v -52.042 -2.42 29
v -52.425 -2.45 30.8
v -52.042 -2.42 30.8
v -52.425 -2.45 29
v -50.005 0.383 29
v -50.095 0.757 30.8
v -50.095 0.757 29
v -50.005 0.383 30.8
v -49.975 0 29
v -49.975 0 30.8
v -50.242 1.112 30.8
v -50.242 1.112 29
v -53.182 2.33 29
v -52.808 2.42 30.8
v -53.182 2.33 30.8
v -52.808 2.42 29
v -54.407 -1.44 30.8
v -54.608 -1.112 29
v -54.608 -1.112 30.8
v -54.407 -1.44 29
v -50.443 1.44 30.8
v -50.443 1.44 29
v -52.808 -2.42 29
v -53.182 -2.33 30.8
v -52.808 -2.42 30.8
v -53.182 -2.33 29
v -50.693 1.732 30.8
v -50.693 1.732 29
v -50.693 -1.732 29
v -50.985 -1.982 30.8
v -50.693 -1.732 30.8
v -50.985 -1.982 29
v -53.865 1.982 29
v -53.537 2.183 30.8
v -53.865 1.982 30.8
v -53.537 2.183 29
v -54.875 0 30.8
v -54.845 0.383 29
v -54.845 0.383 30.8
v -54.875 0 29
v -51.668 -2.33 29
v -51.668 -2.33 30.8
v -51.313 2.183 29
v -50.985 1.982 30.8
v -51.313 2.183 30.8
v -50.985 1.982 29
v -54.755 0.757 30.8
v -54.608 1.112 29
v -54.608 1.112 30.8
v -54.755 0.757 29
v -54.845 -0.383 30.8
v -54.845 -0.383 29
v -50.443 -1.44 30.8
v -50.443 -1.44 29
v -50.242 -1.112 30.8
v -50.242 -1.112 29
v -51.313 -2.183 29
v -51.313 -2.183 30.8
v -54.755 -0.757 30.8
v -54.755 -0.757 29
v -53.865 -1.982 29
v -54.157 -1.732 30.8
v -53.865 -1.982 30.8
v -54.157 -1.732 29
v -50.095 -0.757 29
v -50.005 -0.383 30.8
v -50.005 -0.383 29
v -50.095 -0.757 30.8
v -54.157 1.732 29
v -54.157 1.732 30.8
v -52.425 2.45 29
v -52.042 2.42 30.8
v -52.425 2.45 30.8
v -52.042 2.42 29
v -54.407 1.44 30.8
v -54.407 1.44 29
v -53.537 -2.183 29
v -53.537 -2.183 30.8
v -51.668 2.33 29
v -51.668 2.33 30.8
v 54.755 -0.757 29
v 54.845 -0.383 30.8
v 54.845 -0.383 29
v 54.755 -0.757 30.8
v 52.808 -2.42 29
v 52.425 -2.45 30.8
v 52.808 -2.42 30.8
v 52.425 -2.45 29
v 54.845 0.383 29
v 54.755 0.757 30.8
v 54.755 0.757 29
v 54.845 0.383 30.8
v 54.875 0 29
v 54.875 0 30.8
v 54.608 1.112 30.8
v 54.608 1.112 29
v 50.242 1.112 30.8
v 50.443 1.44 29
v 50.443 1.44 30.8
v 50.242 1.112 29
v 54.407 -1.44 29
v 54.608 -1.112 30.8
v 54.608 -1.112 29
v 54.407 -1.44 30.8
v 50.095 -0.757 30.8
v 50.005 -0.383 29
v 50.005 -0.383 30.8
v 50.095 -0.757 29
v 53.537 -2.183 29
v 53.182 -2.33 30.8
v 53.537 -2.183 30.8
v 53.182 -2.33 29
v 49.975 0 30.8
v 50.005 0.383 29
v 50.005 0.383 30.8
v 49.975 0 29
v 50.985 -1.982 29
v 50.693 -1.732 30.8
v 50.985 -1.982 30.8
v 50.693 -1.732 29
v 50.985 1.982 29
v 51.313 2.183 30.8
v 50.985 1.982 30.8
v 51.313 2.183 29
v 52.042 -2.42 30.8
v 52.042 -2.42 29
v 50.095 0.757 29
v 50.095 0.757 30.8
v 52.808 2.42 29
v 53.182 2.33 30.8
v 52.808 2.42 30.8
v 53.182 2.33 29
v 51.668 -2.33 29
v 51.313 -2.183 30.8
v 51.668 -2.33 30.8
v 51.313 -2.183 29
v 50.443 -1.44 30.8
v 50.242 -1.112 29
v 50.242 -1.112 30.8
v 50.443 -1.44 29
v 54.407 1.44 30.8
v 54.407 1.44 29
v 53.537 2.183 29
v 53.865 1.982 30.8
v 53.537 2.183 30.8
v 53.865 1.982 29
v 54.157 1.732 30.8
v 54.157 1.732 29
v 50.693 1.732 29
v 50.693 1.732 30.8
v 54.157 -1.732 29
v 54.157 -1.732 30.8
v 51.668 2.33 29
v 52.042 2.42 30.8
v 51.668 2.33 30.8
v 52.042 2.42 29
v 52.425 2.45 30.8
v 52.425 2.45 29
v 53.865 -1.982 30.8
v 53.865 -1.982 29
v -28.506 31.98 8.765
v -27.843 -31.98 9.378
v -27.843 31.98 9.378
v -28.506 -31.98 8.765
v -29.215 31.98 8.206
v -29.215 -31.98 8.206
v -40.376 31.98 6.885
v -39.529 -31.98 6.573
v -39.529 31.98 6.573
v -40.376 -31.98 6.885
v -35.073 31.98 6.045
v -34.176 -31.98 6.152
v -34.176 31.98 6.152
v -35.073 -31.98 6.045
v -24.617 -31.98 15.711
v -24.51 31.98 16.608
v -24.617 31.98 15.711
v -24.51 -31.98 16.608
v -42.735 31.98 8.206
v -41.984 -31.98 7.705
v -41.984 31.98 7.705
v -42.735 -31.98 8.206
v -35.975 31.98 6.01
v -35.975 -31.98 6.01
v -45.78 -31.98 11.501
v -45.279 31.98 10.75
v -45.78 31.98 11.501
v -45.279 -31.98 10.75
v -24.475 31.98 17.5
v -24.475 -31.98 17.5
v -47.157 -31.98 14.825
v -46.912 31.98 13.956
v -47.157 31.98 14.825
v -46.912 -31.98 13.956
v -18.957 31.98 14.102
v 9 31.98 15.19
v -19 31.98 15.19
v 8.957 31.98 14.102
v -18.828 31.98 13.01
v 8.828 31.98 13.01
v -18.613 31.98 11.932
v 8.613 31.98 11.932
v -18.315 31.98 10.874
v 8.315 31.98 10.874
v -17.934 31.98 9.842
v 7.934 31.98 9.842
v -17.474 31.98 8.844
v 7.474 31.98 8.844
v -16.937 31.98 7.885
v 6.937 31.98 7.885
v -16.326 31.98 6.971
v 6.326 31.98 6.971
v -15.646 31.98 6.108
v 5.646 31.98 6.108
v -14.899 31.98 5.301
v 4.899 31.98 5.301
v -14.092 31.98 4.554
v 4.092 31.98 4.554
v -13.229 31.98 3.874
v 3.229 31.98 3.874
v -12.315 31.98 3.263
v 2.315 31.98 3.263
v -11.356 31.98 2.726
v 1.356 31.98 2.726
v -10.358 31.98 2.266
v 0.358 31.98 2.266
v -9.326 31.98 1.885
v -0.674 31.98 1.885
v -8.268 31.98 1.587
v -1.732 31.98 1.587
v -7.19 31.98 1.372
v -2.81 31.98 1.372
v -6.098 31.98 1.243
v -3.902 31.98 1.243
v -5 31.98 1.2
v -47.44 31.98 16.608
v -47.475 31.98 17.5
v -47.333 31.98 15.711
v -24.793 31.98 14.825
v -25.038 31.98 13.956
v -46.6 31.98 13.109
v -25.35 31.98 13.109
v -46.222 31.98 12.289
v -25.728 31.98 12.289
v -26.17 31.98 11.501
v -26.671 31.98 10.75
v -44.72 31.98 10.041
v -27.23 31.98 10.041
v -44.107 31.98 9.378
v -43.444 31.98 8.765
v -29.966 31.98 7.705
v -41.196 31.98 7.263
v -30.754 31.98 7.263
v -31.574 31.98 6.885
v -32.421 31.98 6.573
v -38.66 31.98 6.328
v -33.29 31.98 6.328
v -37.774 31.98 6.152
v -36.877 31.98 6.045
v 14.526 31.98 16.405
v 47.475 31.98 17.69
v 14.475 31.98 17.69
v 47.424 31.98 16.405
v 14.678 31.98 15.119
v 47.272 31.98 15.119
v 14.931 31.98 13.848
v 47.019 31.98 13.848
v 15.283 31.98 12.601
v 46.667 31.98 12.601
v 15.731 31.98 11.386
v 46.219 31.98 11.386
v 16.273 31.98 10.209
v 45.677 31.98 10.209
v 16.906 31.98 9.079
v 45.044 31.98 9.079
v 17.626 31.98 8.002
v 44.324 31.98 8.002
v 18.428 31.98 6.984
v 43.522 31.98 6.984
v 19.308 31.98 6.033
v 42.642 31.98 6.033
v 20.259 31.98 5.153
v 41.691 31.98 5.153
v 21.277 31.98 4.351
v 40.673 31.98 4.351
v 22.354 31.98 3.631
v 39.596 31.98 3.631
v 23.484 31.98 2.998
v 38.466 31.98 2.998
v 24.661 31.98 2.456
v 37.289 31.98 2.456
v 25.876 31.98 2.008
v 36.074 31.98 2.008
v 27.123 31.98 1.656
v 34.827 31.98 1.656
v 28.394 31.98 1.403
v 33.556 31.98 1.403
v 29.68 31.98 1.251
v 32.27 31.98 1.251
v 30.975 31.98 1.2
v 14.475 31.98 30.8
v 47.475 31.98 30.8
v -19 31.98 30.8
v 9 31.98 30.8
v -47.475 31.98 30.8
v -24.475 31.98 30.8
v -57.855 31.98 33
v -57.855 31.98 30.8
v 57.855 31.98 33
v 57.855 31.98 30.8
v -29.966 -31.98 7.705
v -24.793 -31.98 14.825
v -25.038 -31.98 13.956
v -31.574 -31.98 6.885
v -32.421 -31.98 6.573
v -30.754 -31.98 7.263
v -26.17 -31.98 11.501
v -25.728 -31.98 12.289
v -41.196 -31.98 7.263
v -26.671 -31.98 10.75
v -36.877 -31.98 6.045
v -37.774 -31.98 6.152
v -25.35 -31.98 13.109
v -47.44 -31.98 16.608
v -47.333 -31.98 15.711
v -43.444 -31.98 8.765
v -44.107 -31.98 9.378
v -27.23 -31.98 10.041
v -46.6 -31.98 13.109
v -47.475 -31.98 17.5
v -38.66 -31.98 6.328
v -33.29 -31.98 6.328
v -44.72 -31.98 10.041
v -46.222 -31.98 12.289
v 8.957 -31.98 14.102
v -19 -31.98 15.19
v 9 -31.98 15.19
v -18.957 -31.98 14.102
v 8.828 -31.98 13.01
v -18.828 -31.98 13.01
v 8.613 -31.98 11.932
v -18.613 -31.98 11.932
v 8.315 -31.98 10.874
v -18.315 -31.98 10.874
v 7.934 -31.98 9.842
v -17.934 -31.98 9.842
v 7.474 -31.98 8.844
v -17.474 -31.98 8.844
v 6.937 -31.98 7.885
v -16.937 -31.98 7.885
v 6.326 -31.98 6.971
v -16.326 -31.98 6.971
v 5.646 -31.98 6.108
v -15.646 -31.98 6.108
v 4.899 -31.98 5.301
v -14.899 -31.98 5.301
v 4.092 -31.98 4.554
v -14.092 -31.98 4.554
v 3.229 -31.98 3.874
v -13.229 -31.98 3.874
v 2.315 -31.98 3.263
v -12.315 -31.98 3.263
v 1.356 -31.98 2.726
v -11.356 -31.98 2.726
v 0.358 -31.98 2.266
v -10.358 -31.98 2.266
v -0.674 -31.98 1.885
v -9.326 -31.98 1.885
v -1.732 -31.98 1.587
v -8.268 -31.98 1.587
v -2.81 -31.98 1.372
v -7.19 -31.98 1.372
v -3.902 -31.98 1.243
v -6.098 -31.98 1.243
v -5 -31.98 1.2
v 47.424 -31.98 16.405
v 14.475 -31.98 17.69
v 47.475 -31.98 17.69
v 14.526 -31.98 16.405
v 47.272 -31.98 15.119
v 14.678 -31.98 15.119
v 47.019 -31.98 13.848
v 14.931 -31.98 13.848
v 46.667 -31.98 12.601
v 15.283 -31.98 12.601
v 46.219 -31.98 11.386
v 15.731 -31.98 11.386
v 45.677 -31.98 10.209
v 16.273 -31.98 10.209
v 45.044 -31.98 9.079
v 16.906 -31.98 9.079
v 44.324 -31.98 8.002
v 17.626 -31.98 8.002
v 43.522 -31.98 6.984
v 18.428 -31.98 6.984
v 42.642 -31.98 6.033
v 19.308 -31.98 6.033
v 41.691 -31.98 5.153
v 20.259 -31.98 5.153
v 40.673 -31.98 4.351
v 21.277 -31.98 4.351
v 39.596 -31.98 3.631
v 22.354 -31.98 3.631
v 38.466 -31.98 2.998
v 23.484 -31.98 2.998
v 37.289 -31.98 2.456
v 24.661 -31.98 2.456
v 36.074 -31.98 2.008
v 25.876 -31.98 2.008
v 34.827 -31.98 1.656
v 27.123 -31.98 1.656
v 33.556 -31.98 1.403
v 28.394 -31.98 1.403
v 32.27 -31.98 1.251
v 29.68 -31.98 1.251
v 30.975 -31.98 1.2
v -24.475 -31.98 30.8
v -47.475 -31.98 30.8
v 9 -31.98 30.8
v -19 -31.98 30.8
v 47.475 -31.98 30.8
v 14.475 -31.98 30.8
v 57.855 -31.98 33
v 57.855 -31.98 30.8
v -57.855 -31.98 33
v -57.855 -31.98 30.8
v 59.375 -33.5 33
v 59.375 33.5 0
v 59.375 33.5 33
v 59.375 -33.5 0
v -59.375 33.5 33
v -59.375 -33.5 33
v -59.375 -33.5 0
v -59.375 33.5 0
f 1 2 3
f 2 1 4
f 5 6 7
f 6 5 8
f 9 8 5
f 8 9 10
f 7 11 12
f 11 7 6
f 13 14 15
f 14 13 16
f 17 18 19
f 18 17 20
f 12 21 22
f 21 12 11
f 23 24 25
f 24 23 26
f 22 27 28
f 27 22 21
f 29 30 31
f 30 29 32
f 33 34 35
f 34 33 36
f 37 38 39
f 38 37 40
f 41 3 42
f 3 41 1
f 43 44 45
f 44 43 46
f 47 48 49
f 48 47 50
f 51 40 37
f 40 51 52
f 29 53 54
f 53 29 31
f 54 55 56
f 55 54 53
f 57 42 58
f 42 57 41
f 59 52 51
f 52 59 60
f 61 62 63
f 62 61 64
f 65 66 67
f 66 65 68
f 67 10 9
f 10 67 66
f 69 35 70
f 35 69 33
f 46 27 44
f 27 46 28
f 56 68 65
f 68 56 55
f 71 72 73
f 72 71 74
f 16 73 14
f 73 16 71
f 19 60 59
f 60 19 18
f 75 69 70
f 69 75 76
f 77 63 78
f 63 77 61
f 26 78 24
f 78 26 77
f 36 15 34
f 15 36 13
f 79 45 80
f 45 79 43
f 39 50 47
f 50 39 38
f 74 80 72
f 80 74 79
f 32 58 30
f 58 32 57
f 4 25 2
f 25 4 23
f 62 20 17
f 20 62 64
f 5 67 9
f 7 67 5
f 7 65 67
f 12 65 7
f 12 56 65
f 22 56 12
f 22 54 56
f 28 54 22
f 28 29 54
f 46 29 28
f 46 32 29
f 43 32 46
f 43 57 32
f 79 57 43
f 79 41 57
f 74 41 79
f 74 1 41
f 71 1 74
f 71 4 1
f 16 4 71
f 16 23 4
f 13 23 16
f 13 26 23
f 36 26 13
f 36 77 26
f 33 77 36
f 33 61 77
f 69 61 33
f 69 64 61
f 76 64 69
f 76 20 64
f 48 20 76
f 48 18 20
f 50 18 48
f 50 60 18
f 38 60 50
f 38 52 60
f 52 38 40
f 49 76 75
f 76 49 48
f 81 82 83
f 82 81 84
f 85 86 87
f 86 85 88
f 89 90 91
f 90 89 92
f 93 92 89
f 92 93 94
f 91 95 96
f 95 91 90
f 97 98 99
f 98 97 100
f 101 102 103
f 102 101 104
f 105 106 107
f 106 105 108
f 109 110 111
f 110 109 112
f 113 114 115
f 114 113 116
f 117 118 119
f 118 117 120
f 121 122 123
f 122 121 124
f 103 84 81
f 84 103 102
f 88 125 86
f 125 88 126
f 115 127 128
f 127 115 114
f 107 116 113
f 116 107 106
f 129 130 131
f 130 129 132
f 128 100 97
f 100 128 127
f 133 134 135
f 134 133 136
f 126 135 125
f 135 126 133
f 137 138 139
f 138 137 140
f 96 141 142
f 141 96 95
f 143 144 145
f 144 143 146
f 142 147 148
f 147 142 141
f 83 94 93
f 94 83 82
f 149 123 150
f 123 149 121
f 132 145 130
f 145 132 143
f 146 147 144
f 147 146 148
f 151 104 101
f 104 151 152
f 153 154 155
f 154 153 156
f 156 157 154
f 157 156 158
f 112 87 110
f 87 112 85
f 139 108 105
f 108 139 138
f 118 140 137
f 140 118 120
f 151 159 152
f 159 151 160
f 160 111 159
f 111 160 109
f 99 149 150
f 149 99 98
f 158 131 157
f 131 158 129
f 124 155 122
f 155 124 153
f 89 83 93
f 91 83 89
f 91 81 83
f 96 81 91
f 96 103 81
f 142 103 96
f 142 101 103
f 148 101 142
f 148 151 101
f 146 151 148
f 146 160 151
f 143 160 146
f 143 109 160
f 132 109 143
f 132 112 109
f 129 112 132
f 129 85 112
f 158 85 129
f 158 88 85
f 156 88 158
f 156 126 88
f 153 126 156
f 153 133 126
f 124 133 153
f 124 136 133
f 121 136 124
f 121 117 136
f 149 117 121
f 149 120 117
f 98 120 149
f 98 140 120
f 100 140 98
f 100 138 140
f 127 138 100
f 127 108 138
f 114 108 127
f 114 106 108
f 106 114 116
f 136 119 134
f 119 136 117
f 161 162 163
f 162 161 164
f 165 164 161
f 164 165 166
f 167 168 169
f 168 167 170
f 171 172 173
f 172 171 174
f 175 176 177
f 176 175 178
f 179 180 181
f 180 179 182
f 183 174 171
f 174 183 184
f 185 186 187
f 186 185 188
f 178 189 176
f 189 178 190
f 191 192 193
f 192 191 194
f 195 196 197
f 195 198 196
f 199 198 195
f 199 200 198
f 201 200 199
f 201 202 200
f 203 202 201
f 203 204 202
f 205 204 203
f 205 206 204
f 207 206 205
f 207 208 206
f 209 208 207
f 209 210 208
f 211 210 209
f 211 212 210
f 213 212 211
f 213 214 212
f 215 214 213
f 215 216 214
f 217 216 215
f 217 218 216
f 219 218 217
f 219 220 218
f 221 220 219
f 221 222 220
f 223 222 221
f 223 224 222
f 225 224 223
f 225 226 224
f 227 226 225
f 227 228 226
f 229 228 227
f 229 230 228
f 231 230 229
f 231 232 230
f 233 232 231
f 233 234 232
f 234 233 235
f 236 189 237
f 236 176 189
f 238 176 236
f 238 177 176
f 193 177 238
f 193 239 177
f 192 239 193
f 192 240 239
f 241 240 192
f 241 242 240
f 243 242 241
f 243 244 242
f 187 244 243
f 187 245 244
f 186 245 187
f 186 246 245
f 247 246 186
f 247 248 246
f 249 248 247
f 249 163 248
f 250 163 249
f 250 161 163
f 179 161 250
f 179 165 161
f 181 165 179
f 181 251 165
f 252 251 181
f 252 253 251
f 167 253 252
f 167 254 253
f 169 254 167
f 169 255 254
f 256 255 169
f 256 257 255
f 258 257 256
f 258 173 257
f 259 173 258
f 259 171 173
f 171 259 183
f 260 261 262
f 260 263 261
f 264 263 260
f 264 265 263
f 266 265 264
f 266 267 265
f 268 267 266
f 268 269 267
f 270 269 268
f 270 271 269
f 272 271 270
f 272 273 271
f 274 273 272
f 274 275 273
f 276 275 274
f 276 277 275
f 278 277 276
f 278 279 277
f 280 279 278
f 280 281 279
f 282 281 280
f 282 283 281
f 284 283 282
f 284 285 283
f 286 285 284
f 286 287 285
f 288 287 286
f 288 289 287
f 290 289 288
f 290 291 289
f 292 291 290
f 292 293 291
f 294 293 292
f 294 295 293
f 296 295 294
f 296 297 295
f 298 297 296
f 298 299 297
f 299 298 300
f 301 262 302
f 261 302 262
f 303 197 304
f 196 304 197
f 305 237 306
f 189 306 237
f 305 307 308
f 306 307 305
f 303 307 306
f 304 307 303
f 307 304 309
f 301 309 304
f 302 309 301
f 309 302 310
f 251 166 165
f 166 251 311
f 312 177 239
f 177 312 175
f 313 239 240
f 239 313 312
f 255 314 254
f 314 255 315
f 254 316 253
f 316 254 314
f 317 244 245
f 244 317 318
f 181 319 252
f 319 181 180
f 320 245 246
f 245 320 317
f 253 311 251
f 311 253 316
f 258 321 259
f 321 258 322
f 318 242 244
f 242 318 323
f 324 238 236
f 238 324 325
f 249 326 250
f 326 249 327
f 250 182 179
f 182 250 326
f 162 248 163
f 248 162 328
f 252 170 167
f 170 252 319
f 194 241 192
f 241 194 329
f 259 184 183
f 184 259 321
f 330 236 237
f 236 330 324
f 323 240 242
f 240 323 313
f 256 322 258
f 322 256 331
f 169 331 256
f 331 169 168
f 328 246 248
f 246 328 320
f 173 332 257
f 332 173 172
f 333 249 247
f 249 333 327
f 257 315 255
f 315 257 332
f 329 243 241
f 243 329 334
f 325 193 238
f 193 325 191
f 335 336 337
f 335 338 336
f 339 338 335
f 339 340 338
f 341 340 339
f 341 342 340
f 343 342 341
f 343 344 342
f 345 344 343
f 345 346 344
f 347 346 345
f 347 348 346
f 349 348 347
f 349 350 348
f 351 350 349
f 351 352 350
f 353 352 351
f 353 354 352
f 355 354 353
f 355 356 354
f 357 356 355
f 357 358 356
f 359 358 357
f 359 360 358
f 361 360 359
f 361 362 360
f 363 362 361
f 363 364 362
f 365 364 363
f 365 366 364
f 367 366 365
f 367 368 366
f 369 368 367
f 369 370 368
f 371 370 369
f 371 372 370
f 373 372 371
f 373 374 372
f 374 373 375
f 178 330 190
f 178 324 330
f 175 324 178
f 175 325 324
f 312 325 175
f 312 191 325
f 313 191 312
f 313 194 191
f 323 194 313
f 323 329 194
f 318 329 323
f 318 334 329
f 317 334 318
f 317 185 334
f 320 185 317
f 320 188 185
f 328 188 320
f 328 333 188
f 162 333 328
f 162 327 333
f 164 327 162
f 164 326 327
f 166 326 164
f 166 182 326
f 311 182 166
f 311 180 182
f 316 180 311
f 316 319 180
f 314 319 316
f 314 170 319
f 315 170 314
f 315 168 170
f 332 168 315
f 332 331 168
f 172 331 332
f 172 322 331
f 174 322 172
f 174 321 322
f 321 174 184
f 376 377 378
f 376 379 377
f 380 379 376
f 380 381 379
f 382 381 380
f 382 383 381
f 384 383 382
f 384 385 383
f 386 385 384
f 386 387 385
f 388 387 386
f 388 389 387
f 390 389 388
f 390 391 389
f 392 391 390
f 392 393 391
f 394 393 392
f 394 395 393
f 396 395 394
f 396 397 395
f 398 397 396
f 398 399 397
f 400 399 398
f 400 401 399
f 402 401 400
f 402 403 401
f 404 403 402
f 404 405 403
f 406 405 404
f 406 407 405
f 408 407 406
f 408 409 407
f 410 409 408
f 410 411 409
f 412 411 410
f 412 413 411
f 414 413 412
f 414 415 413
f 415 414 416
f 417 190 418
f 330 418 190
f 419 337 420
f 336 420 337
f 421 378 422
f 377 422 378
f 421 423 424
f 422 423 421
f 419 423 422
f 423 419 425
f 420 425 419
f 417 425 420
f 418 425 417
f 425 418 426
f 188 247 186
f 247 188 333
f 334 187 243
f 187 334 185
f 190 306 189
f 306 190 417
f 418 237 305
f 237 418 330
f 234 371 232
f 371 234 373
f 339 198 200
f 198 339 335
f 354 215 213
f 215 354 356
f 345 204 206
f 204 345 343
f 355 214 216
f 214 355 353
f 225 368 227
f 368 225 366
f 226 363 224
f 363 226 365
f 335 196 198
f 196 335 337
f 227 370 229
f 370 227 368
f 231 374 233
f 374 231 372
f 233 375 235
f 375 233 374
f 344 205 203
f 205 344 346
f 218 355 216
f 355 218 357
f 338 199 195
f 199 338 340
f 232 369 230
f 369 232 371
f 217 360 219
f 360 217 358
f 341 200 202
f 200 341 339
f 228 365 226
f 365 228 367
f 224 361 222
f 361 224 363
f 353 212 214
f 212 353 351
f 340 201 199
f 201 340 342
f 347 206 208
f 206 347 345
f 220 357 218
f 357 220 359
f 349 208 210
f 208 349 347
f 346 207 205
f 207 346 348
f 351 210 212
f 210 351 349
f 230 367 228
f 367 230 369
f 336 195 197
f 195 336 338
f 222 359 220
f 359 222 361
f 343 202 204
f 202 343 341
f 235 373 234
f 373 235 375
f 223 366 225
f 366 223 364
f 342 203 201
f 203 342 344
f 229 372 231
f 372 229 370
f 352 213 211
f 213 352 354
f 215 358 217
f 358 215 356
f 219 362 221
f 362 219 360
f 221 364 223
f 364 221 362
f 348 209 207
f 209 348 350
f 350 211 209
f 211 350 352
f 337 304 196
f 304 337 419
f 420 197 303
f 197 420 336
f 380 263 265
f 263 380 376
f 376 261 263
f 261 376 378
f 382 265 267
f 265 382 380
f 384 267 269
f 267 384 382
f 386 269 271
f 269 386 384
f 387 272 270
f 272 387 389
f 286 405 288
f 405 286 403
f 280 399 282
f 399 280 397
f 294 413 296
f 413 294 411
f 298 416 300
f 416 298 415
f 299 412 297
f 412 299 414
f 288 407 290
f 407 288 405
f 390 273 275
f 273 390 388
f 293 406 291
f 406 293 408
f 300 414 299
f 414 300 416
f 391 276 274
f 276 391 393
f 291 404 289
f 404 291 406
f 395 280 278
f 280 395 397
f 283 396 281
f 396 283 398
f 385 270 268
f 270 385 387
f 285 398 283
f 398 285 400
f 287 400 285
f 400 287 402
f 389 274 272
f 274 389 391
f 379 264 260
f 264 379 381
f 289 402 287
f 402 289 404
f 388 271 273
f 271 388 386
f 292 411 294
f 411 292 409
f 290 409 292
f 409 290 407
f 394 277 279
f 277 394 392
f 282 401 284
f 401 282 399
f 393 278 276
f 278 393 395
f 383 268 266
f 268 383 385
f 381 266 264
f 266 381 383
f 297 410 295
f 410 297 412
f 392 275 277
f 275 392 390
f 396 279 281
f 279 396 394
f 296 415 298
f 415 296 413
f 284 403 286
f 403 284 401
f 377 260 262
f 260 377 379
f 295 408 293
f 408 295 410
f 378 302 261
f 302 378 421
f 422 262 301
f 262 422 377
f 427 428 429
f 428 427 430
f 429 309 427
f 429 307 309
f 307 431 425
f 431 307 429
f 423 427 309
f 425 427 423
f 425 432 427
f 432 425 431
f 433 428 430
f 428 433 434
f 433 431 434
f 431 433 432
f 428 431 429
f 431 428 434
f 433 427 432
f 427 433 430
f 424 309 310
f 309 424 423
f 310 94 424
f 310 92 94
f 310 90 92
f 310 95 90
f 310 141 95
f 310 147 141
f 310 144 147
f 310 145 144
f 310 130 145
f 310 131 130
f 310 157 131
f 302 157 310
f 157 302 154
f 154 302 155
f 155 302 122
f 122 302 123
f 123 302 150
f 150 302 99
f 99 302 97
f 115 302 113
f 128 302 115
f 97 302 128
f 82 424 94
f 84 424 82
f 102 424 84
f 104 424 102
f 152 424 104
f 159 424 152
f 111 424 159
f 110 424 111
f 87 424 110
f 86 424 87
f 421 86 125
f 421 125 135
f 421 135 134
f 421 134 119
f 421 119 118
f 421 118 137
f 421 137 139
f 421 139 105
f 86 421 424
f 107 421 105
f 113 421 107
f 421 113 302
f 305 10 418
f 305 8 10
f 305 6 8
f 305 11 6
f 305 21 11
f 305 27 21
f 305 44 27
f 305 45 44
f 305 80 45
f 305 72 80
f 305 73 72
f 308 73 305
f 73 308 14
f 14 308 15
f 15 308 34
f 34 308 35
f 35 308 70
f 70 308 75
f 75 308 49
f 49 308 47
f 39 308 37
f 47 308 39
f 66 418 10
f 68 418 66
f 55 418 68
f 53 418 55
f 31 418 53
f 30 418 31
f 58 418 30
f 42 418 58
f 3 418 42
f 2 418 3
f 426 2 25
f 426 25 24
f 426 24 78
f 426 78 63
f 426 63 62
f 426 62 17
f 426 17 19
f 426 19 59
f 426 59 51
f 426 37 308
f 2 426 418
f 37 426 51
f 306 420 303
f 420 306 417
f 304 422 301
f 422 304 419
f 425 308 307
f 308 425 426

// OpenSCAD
/*
 * original tray dimensions: 118.75 x 67 x 33mm
 *
 */
//translate([-135,50,0]) import("./orig/7WD_Coin_Tray.stl");

boxWid = 118.75;
boxDep = 67;
boxHt  = 33;

wallThick = 1.52;
botThick  = 1.2;

magnetDim = 4.9; /* 3/16" with slop */
magnetHt  = 1.8; /* 1/16" with slop */
magnetSpace = 7+magnetDim; /* room on ends of tray for magnet to mount */

oneDim   = 23;
threeDim = 28;
sixDim   = 33;

filler = boxWid-2*magnetSpace-oneDim-threeDim-sixDim;

topHt  = 2.2;
topGap = 0.5; /* all the way around */

// rotate([180,0,0]) top();

tray();

module top() {
   difference() {
      translate([-boxWid/2+wallThick+topGap,-boxDep/2+wallThick+topGap,boxHt-topHt])
         cube([boxWid-2*wallThick-2*topGap,boxDep-2*wallThick-2*topGap,topHt+0.01]);

      /* magnet holes */
      magnetVoids();

      /* finger holes */
      for (i=[0:1]) mirror([0,i,0]) {
         translate([-boxWid/2+magnetSpace+filler/2+oneDim+threeDim/2,-8,botThick]) difference() {
            cylinder(d=threeDim-3,h=boxHt+0.01);
            translate([0,threeDim/2,boxHt+0.02]) cube([threeDim+0.01,threeDim+0.01,boxHt+0.02],center=true);
         }
      }
   }
}


module tray() {
   difference() {
      myLeft = -boxWid/2+magnetSpace;
   
      translate([-boxWid/2,-boxDep/2,0]) cube([boxWid,boxDep,boxHt]);
   
      /* coin slots */
      translate([myLeft+oneDim/2,0,botThick]) coinVoid(dim=oneDim);
      translate([myLeft+filler/2+oneDim+threeDim/2,0,botThick]) coinVoid(dim=threeDim);
      translate([myLeft+filler+oneDim+threeDim+sixDim/2,0,botThick]) coinVoid(dim=sixDim);

      translate([-boxWid/2+wallThick,-boxDep/2+wallThick,boxHt-topHt])
         cube([boxWid-2*wallThick,boxDep-2*wallThick,topHt+0.01]);

      /* magnet holes */
      magnetVoids();
   }
}

/* magnetVoids() -- place magnets top and bottom */
module magnetVoids() {
   $fn=40;

   /* two magnets stacked */
   translate([-boxWid/2+magnetSpace/2+1,0,boxHt-topHt-magnetHt]) cylinder(d=magnetDim,h=2*magnetHt);
   translate([+boxWid/2-magnetSpace/2-1,0,boxHt-topHt-magnetHt]) cylinder(d=magnetDim,h=2*magnetHt);
}
   
/* coinVoid -- quick method of getting slots for coins */
module coinVoid(len=boxDep-2*wallThick,dim=oneDim,ht=boxHt-botThick+0.01) {
   intersection() {
      union() {
         if (dim < ht-4) {
            /* don't make voids deeper than they need to be */
            translate([0,-len/2,dim/2+(ht-dim-4)]) rotate([-90,0,0]) cylinder($fn=80,d=dim,h=len);
            translate([-dim/2,-len/2,dim/2-0.01+(ht-dim-4)]) cube([dim,len,ht-dim/2+0.01]);
         }
         else {
            translate([0,-len/2,dim/2]) rotate([-90,0,0]) cylinder($fn=80,d=dim,h=len);
            translate([-dim/2,-len/2,dim/2-0.01]) cube([dim,len,ht-dim/2+0.01]);
         }
      }
      /* cut everything off at the top */
      translate([-dim/2,-len/2,0]) cube([dim,len,ht]);
   }
}
